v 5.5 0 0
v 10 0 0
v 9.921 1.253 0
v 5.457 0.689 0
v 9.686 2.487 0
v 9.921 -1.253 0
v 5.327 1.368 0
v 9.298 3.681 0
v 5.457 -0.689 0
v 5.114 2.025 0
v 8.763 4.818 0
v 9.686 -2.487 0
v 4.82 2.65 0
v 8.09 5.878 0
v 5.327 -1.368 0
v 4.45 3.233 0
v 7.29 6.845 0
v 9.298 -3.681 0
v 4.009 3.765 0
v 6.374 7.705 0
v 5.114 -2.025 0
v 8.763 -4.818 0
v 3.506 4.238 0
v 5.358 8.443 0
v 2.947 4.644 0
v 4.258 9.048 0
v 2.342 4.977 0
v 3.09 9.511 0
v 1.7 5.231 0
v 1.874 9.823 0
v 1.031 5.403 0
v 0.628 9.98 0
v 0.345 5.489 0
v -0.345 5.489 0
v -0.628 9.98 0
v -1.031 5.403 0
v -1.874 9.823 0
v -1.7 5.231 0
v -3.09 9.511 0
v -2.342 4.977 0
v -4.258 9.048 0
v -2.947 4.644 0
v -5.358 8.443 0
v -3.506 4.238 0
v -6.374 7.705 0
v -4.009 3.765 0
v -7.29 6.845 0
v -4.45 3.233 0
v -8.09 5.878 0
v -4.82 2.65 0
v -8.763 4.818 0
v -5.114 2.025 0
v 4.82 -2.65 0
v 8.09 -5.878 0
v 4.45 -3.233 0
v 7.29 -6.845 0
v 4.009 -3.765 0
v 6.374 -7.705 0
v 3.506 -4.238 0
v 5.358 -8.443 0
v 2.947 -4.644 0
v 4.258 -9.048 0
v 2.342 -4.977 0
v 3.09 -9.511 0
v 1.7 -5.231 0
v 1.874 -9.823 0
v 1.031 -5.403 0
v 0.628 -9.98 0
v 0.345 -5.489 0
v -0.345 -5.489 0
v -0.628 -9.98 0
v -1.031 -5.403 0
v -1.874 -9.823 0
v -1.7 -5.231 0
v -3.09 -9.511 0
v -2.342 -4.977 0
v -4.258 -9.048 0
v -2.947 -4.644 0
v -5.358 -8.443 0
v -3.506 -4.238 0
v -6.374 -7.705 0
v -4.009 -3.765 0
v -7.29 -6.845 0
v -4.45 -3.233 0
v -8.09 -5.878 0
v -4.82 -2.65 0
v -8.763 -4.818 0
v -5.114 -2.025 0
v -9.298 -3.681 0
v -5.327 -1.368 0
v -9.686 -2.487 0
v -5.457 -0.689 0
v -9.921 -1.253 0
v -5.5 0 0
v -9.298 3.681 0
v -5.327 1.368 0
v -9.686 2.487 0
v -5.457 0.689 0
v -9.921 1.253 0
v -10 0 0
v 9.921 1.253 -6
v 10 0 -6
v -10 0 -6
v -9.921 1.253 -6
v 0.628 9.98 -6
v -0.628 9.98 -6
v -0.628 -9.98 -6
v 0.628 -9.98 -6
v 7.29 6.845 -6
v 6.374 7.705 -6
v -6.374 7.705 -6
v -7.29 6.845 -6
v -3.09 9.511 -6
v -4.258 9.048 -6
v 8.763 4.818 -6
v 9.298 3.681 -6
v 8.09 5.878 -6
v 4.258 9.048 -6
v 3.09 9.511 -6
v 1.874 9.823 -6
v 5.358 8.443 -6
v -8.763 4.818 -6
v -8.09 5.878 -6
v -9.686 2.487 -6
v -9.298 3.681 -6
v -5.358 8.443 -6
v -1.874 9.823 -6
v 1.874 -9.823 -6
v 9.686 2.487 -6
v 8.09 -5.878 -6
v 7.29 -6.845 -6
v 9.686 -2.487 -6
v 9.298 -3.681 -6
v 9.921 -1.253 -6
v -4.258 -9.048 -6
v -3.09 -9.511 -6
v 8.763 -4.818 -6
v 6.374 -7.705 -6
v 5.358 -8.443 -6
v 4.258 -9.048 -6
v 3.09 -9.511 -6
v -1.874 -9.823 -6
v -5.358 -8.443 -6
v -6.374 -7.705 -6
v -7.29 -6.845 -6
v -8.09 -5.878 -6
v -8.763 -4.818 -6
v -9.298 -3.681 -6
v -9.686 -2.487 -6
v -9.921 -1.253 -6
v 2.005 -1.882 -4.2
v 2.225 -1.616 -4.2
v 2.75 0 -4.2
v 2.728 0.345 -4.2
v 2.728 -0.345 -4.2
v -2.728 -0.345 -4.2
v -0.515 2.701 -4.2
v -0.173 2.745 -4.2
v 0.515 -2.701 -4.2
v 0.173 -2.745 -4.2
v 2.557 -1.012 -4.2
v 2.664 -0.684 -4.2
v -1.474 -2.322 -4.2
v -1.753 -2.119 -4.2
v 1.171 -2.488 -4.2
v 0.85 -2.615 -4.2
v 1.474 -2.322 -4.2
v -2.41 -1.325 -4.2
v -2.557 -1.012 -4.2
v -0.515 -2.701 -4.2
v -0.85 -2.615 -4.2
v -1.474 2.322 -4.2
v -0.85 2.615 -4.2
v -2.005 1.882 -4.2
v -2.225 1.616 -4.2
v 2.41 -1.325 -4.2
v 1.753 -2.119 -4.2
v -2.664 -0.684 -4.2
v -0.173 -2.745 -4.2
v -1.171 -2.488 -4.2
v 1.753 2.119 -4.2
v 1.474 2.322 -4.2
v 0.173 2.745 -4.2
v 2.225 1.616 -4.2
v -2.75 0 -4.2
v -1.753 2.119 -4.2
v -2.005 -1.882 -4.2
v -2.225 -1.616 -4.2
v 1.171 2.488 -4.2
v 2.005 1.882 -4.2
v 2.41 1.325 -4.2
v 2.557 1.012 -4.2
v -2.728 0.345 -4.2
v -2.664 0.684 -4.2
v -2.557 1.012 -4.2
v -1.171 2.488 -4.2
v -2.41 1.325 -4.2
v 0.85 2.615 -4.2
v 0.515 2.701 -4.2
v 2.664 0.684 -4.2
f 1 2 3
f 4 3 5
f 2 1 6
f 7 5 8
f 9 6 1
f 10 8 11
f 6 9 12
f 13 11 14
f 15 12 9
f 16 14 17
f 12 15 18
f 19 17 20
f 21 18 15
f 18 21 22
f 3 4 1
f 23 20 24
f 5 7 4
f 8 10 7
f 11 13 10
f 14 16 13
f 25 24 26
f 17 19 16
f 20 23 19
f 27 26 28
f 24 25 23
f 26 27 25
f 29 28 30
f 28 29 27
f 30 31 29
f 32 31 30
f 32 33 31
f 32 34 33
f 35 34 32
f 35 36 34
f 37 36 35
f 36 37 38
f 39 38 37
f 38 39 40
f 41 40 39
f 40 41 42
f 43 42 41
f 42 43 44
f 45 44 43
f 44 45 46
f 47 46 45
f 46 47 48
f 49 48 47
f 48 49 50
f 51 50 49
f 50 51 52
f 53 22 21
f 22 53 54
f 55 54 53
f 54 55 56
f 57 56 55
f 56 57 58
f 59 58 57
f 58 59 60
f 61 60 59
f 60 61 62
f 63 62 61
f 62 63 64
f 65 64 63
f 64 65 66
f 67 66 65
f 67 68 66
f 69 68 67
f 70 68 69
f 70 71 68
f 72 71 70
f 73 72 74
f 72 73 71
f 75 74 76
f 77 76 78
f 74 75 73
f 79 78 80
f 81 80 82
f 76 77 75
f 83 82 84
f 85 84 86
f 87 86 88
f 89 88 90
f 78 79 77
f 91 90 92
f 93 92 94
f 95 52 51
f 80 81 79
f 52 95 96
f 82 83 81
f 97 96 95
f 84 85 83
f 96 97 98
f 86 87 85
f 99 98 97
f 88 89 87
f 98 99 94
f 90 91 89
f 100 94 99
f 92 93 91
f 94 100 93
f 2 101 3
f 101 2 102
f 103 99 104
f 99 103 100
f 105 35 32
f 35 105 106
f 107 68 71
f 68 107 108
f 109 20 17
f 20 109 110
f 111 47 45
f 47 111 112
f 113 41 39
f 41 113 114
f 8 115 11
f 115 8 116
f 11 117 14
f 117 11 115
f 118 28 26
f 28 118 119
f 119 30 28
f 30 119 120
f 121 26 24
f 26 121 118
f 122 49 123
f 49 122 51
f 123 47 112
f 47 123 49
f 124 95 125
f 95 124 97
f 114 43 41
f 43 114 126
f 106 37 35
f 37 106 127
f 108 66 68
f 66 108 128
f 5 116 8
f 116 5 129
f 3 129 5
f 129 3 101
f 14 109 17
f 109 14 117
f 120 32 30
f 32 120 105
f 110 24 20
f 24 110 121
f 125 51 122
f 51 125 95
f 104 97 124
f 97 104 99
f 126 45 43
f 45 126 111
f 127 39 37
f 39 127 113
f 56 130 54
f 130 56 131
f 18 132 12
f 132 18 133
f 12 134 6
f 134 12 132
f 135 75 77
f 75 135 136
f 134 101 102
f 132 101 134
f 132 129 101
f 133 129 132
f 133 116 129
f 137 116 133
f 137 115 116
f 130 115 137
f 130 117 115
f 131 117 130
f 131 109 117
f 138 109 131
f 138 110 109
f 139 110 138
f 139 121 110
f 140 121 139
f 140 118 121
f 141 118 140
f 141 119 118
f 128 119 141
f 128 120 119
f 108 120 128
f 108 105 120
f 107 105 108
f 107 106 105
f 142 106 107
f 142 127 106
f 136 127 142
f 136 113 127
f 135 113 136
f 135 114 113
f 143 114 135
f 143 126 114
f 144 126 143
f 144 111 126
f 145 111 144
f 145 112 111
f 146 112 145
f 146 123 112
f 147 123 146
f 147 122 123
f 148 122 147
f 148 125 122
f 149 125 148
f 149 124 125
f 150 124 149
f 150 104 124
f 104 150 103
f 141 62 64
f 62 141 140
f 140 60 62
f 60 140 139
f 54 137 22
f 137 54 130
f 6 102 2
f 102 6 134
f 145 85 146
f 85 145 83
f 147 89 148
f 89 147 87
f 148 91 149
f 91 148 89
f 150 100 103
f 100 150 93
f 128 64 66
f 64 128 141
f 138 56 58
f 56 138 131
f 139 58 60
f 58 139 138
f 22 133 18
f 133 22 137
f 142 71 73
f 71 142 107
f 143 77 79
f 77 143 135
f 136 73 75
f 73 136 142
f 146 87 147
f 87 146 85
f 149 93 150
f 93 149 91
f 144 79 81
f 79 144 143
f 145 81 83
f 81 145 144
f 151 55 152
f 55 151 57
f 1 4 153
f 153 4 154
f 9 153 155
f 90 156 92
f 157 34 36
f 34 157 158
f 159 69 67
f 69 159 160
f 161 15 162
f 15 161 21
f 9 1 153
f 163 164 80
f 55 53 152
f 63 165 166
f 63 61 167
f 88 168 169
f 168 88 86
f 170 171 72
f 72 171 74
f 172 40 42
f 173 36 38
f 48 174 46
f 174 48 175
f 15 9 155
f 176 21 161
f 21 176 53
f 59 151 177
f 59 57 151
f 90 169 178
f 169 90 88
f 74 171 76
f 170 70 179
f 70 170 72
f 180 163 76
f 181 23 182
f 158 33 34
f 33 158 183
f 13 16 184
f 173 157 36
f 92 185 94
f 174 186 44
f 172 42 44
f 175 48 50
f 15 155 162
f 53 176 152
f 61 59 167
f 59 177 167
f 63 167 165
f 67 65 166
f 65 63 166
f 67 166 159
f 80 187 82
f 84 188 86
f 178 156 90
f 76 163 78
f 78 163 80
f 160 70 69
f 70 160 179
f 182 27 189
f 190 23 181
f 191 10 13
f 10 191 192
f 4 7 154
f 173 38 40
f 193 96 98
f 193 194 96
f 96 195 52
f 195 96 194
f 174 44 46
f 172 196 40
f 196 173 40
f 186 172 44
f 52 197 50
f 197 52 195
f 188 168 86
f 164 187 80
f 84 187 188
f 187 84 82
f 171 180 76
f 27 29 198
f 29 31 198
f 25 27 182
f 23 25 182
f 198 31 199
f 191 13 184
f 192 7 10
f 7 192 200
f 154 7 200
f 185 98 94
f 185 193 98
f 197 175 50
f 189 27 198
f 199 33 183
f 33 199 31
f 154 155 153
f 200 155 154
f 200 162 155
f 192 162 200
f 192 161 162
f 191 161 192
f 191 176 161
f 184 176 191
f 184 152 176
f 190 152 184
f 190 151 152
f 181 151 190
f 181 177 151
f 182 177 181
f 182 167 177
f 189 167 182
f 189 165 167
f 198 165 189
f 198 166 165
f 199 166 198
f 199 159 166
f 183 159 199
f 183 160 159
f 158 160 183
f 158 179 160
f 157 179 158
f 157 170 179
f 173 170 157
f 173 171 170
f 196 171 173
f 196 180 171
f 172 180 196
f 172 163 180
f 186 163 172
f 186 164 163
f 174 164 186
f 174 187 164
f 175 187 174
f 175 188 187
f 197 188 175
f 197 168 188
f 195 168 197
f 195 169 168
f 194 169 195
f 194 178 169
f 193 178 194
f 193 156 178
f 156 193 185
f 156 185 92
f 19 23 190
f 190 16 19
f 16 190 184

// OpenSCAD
$fn = 50;


difference() {
	union() {
		translate(v = [0, 0, -3.0000000000]) {
			cylinder(h = 3, r = 7.0000000000);
		}
		translate(v = [0, 0, -6.0000000000]) {
			cylinder(h = 6, r = 10.0000000000);
		}
	}
	union() {
		translate(v = [0, 0, 0]) {
			rotate(a = [0, 0, 0]) {
				difference() {
					union() {
						#translate(v = [0, 0, -3.0000000000]) {
							cylinder(h = 3, r = 2.2500000000);
						}
						#translate(v = [0, 0, -4.2000000000]) {
							cylinder(h = 4.2000000000, r1 = 2.7500000000, r2 = 5.5000000000);
						}
						#translate(v = [0, 0, -3.0000000000]) {
							cylinder(h = 3, r = 2.7500000000);
						}
						#translate(v = [0, 0, -3.0000000000]) {
							cylinder(h = 3, r = 2.2500000000);
						}
					}
					union();
				}
			}
		}
	}
}
